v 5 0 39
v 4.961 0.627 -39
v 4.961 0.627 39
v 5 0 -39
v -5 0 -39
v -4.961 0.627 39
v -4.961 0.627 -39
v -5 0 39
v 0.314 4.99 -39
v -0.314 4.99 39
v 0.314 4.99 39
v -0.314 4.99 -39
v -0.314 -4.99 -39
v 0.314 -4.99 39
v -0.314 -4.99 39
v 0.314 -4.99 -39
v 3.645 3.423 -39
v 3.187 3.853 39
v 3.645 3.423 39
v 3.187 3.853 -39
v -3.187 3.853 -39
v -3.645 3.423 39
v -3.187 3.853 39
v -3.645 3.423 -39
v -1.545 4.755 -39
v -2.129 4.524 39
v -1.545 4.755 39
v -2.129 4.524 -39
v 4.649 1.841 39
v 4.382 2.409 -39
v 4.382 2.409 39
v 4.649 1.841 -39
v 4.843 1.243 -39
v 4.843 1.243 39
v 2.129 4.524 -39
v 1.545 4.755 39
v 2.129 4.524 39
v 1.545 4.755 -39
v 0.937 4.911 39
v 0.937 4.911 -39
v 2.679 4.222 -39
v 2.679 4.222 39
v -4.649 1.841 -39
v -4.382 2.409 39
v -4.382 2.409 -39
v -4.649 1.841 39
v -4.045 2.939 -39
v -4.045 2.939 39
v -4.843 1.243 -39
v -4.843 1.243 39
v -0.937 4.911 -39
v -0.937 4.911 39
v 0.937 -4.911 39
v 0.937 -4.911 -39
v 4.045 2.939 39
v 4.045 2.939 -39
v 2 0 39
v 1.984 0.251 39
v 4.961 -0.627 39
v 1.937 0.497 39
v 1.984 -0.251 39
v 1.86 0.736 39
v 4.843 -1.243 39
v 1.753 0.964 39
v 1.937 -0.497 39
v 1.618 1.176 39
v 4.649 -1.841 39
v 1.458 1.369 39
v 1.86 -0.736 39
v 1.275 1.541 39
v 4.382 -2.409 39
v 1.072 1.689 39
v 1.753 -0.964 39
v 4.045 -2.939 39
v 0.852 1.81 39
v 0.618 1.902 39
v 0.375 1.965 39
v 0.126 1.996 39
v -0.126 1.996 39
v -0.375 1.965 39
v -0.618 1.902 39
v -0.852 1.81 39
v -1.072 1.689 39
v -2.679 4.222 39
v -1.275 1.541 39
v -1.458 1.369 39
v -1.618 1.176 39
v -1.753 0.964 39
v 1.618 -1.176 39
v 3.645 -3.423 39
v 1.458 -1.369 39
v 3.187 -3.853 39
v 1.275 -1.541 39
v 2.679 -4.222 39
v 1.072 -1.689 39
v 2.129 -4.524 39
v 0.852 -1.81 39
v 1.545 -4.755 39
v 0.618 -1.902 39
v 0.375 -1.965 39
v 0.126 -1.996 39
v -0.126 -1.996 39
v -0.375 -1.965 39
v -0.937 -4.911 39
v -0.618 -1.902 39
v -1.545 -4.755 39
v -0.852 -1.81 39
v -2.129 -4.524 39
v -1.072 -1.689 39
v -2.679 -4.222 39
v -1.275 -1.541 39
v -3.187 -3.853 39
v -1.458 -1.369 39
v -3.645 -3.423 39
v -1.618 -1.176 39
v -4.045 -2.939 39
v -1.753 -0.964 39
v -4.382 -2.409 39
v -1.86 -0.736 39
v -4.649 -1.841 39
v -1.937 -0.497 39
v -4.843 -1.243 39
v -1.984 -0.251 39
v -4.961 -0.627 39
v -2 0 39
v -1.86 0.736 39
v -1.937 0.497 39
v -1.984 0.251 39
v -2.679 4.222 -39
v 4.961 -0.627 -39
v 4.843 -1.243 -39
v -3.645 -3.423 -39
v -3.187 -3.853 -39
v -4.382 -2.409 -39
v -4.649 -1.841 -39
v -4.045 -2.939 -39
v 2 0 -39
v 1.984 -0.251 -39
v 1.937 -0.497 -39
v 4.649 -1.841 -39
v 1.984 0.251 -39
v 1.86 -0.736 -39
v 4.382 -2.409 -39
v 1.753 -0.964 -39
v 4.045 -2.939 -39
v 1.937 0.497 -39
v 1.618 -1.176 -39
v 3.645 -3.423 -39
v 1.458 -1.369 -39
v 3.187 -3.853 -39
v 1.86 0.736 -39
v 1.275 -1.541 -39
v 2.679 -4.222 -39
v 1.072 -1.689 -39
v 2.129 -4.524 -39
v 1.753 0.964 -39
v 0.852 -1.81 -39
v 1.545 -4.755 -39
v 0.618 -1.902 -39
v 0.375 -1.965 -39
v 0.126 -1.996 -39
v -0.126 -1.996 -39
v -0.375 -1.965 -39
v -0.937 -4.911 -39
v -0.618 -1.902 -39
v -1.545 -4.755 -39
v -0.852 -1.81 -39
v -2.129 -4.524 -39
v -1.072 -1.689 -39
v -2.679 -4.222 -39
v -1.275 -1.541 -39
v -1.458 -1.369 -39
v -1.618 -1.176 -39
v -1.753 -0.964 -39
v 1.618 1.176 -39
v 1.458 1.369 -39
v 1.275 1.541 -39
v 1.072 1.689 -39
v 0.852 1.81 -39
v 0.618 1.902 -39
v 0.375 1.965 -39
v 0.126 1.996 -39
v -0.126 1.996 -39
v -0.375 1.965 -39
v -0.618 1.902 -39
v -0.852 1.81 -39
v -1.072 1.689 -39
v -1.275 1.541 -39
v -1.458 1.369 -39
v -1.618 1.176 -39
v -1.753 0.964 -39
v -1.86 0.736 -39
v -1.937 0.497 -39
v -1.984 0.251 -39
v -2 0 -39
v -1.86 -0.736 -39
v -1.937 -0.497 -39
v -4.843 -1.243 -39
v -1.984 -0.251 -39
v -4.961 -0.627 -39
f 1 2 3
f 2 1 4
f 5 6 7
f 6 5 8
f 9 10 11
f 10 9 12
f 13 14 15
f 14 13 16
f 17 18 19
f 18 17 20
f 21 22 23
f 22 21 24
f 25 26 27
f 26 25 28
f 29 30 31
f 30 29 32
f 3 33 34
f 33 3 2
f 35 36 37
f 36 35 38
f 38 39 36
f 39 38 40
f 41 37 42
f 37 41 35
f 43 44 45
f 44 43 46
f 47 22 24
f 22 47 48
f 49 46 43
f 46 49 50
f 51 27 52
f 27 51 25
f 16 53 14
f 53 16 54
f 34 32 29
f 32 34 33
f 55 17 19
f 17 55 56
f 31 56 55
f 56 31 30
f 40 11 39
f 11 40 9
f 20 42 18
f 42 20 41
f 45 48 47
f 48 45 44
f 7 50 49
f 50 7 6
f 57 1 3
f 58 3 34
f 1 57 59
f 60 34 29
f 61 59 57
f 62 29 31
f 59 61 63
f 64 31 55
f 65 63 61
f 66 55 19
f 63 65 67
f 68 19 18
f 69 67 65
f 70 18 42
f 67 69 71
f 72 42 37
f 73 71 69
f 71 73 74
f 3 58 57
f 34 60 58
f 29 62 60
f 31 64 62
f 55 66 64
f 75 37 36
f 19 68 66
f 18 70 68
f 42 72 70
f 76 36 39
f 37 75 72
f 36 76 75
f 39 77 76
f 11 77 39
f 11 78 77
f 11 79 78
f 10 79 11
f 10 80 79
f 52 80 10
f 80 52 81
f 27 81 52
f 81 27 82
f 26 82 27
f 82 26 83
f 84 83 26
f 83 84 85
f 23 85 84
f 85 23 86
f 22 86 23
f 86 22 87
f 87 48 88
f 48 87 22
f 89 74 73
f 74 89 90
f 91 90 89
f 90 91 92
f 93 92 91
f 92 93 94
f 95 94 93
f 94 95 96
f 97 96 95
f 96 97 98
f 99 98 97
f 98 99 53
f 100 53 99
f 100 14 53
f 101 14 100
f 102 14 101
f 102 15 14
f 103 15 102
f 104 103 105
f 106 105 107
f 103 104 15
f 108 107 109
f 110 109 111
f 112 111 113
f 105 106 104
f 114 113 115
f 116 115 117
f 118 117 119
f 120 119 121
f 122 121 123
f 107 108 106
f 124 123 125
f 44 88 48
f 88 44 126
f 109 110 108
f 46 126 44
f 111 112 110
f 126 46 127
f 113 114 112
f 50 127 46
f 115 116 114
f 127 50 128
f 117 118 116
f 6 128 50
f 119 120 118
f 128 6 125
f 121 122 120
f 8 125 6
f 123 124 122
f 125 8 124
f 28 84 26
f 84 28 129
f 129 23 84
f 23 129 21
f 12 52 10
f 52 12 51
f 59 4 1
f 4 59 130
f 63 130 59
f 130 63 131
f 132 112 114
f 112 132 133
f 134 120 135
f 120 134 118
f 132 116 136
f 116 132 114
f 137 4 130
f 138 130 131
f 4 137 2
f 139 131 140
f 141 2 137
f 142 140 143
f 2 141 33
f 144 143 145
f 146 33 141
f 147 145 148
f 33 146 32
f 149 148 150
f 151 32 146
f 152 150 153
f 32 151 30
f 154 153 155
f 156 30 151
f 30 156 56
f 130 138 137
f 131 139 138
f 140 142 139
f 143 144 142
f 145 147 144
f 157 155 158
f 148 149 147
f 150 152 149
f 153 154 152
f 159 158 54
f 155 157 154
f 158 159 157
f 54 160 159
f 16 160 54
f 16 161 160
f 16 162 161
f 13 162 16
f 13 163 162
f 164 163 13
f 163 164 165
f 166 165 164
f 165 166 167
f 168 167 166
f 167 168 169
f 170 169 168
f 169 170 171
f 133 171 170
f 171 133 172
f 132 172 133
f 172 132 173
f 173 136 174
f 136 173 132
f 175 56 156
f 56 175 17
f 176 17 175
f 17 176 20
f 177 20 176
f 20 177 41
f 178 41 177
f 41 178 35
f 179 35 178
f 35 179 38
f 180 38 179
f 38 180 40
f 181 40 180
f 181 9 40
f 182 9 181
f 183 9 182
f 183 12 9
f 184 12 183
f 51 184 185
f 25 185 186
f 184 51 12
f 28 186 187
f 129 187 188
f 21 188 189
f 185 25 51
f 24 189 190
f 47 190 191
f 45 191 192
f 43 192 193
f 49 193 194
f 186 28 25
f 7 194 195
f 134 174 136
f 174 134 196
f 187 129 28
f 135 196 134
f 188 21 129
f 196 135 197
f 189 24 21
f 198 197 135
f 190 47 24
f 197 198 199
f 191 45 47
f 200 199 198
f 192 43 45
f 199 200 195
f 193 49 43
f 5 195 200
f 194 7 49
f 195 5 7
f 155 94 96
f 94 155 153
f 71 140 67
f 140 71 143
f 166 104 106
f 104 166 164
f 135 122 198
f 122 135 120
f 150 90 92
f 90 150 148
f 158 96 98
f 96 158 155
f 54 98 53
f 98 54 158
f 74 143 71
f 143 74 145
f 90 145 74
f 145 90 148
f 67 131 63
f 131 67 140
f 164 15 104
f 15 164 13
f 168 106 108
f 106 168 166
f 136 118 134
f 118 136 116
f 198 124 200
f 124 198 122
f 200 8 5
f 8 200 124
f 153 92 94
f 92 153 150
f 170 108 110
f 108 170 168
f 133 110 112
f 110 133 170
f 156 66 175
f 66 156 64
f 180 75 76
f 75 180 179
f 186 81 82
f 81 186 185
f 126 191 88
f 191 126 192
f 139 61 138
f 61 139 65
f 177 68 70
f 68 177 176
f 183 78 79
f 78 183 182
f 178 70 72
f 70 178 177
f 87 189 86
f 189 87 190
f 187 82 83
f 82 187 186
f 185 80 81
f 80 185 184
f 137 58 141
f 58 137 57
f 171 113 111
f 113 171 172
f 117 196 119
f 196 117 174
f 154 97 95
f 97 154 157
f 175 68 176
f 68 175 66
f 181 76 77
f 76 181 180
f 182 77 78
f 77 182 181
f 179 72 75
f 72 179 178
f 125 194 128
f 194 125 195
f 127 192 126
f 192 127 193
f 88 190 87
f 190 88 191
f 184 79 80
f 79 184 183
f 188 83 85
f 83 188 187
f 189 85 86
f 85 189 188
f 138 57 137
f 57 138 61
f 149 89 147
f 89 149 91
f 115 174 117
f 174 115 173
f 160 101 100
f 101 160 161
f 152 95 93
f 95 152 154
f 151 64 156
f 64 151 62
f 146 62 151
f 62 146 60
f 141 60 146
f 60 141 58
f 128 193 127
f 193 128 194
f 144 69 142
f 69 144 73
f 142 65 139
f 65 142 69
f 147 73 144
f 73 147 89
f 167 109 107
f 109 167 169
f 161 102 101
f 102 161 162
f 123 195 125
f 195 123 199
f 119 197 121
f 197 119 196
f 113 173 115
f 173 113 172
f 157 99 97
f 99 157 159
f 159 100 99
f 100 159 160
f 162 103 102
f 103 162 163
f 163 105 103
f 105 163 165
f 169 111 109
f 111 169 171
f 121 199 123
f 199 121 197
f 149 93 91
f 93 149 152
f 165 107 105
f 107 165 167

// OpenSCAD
$fn = 50;


difference() {
	union() {
		translate(v = [0, 0, -39.0000000000]) {
			cylinder(h = 78, r = 5.0000000000);
		}
	}
	union() {
		translate(v = [0, 0, -100.0000000000]) {
			cylinder(h = 200, r = 2);
		}
	}
}
